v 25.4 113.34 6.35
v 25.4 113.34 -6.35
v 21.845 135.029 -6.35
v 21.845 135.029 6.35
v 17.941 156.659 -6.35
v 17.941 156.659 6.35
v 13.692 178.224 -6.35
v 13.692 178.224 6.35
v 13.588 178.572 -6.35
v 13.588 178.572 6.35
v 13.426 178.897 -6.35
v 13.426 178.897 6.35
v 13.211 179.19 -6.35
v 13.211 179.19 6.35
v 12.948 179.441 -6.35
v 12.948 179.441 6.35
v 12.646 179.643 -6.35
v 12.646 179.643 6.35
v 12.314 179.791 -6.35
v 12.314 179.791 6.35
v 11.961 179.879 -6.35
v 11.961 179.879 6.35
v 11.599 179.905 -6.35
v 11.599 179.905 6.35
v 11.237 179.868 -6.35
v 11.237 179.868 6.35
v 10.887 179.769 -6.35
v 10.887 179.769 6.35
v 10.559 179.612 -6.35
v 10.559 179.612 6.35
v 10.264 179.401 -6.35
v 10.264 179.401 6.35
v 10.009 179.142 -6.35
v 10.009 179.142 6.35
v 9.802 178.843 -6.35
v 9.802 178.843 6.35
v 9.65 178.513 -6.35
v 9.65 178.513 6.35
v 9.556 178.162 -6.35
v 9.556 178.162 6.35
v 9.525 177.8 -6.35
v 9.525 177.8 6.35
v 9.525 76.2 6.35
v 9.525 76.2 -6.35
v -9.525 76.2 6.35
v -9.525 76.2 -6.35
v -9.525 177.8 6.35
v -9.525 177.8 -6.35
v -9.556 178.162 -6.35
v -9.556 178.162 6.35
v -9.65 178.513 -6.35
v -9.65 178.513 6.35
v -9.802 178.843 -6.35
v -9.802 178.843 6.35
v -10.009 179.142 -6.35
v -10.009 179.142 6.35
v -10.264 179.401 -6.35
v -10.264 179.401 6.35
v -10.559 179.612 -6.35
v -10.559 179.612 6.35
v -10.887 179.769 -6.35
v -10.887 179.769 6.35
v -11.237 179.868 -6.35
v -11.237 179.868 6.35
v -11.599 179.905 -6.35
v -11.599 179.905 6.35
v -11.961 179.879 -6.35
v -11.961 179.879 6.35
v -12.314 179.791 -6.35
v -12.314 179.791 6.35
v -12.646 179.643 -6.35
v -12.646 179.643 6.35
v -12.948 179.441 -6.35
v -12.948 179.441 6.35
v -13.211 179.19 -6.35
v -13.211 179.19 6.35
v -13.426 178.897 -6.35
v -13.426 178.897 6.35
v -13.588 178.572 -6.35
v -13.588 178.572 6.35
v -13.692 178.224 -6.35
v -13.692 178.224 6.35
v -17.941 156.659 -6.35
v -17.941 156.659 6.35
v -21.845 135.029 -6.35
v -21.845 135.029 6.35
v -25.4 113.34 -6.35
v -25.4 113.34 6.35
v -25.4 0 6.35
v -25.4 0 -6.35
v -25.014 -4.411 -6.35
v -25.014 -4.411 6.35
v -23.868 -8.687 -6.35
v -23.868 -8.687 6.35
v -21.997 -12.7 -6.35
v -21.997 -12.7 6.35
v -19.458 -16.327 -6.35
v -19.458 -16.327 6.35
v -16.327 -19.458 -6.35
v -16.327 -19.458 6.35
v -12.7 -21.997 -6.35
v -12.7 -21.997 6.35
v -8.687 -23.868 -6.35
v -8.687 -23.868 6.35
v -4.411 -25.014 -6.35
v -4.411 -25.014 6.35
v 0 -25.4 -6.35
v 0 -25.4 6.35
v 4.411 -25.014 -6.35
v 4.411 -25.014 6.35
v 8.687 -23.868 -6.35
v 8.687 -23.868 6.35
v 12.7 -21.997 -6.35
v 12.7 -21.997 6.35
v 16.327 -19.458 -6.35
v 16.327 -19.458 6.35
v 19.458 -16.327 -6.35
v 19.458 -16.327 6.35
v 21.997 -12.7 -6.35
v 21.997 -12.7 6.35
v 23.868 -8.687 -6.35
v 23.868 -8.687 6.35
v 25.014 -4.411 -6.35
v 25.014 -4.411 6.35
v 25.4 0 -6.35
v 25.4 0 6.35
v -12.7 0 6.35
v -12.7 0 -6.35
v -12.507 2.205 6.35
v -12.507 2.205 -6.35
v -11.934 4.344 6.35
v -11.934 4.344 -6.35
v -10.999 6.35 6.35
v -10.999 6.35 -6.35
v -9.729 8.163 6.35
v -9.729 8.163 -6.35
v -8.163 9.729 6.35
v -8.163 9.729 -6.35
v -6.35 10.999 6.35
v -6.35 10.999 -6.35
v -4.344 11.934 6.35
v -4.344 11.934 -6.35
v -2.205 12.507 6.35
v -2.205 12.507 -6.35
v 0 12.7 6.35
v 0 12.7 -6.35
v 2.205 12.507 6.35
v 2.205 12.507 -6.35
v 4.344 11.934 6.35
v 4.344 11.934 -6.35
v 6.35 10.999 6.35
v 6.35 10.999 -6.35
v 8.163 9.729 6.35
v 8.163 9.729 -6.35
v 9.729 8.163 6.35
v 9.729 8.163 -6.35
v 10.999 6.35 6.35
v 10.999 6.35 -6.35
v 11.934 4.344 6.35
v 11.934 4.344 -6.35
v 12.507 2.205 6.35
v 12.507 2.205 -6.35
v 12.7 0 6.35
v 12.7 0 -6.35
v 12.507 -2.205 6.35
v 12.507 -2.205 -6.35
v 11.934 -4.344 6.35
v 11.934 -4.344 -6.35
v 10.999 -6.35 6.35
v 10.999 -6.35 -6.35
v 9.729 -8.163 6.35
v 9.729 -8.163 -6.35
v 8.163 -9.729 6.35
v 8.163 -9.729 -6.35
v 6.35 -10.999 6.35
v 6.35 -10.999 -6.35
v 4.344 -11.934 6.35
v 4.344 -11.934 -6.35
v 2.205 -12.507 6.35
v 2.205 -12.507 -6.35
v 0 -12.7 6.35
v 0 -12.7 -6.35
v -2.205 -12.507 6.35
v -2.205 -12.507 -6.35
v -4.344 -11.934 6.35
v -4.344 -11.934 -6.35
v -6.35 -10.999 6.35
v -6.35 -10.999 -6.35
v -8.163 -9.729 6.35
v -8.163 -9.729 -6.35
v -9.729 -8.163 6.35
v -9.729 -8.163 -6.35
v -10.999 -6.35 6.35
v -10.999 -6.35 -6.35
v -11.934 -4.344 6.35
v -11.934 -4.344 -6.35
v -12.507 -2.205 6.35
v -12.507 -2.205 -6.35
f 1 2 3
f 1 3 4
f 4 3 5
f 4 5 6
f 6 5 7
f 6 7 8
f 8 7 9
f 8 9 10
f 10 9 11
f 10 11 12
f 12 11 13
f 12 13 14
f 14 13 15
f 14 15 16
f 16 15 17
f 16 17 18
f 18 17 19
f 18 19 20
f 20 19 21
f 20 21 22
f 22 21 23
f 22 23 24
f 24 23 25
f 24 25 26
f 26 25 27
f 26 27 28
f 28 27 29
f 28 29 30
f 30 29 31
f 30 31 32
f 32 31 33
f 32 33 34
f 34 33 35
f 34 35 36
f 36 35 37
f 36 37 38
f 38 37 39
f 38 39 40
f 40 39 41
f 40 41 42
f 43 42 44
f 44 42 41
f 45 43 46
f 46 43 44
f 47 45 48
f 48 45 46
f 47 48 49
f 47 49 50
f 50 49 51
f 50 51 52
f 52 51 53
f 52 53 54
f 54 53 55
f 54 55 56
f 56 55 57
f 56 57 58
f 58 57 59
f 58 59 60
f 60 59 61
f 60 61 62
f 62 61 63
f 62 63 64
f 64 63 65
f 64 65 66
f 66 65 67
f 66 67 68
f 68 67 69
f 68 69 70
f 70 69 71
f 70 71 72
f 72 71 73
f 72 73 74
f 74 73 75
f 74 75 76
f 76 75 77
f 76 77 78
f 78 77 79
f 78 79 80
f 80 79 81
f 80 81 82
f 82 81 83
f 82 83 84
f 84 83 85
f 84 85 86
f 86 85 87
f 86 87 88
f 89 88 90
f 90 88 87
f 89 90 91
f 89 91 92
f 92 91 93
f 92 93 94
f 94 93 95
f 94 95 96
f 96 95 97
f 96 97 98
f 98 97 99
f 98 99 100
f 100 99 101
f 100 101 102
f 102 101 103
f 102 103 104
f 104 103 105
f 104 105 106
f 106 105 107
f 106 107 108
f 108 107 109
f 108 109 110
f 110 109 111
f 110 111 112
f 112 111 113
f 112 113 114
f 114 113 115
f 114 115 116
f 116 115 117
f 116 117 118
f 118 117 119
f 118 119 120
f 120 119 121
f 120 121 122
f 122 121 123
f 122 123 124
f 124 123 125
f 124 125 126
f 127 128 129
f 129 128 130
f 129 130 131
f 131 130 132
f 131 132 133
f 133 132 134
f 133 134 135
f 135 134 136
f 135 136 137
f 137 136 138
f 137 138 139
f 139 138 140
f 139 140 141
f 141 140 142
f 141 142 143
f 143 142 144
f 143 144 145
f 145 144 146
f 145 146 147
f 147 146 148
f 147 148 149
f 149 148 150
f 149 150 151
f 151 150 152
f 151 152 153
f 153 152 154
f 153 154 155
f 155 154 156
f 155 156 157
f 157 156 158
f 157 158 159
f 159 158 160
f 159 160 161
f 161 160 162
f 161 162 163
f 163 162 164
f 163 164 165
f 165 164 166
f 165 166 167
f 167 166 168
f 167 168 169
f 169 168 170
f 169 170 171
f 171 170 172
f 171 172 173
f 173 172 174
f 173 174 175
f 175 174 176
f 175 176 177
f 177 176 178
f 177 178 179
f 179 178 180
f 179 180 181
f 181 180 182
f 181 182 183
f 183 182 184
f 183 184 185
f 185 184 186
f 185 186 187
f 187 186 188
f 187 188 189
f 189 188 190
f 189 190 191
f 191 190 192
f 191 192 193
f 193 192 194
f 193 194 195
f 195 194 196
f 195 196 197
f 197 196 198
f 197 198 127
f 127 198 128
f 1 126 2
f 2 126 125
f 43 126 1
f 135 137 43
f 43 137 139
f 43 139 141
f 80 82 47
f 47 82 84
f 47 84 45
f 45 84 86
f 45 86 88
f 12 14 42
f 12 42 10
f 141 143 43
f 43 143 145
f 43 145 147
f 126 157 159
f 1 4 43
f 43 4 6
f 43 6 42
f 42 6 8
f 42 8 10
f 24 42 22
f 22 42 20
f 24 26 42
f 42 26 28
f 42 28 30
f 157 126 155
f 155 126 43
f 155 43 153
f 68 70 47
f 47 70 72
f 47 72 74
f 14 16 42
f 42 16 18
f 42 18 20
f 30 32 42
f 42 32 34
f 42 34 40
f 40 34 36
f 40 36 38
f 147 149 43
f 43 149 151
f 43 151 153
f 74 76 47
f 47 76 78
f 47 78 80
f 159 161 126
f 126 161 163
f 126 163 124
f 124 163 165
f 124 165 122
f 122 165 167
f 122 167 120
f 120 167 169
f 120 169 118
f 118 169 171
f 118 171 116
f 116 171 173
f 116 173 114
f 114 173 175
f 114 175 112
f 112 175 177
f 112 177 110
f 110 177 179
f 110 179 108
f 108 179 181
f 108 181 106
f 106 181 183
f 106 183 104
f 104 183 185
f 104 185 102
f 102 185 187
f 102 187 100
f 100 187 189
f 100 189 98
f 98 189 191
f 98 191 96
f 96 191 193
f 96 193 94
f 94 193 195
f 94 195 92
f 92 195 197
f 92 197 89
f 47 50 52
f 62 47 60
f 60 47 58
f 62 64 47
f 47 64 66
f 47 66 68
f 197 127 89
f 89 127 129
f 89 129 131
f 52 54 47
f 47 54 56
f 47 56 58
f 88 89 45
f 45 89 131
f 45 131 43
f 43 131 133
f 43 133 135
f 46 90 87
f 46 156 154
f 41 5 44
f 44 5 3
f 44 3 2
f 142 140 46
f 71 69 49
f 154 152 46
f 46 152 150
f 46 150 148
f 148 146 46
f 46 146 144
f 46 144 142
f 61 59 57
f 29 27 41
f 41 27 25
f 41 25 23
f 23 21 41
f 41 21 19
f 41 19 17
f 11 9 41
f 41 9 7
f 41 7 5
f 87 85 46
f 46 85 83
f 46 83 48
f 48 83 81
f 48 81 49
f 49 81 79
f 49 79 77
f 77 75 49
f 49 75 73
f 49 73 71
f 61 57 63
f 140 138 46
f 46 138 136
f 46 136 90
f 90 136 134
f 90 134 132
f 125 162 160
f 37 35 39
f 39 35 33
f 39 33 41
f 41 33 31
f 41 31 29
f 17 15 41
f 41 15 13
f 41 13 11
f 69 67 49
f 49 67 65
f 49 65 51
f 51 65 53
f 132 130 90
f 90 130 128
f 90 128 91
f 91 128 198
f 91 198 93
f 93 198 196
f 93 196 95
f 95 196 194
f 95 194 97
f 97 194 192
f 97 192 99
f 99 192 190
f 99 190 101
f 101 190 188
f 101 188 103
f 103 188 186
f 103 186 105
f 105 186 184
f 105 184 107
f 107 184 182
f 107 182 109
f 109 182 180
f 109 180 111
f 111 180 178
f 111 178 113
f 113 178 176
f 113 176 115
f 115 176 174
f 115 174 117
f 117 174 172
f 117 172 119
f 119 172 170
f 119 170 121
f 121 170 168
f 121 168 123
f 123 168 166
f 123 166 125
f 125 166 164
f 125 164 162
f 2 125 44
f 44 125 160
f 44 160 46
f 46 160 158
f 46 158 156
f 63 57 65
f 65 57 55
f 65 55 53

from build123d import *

# Parameters (mm, degrees)
SKETCH1_R           = 12.7
BOSS_EXTRUDE1_DEPTH = 6.35


with BuildPart() as part:
    # Sketch1 → Boss-Extrude1 (new, symmetric)
    # profile 1 of 3: a face of its own
    with BuildSketch(Plane.XY):
        with BuildLine():
            Line((-9.525, 76.2), (-9.525, 136.886260676))
            ThreePointArc((-9.525, 136.886260676), (-18.575269818, 130.663783585), (-24.152491502, 121.202219064))
            ThreePointArc((-24.152491502, 121.202219064), (-24.781960517, 117.271931521), (-25.4, 113.33983048))
            Line((-25.4, 113.33983048), (-25.4, 0))
            ThreePointArc((-25.4, 0), (0, -25.4), (25.4, 0))
            Line((25.4, 0), (25.4, 113.33983048))
            ThreePointArc((25.4, 113.33983048), (24.781960517, 117.271931521), (24.152491502, 121.202219064))
            ThreePointArc((24.152491502, 121.202219064), (18.575269818, 130.663783585), (9.525, 136.886260676))
            Line((9.525, 136.886260676), (9.525, 76.2))
            Line((9.525, 76.2), (-9.525, 76.2))
        make_face()
        Circle(SKETCH1_R, mode=Mode.SUBTRACT)
    # profile 2 of 3: a face of its own
    with BuildSketch(Plane.XY):
        with BuildLine():
            Line((9.525, 177.8), (9.525, 136.886260676))
            ThreePointArc((9.525, 136.886260676), (18.575269818, 130.663783585), (24.152491502, 121.202219064))
            ThreePointArc((24.152491502, 121.202219064), (19.223916585, 149.768263862), (13.691628219, 178.22355426))
            ThreePointArc((13.691628219, 178.22355426), (11.416973573, 179.894050437), (9.525, 177.8))
        make_face()
    # profile 3 of 3: a face of its own
    with BuildSketch(Plane.XY):
        with BuildLine():
            Line((-9.525, 136.886260676), (-9.525, 177.8))
            ThreePointArc((-9.525, 177.8), (-11.416973573, 179.894050437), (-13.691628219, 178.22355426))
            ThreePointArc((-13.691628219, 178.22355426), (-19.223916585, 149.768263862), (-24.152491502, 121.202219064))
            ThreePointArc((-24.152491502, 121.202219064), (-18.575269818, 130.663783585), (-9.525, 136.886260676))
        make_face()
    extrude(amount=BOSS_EXTRUDE1_DEPTH, both=True)


solid = part.part
